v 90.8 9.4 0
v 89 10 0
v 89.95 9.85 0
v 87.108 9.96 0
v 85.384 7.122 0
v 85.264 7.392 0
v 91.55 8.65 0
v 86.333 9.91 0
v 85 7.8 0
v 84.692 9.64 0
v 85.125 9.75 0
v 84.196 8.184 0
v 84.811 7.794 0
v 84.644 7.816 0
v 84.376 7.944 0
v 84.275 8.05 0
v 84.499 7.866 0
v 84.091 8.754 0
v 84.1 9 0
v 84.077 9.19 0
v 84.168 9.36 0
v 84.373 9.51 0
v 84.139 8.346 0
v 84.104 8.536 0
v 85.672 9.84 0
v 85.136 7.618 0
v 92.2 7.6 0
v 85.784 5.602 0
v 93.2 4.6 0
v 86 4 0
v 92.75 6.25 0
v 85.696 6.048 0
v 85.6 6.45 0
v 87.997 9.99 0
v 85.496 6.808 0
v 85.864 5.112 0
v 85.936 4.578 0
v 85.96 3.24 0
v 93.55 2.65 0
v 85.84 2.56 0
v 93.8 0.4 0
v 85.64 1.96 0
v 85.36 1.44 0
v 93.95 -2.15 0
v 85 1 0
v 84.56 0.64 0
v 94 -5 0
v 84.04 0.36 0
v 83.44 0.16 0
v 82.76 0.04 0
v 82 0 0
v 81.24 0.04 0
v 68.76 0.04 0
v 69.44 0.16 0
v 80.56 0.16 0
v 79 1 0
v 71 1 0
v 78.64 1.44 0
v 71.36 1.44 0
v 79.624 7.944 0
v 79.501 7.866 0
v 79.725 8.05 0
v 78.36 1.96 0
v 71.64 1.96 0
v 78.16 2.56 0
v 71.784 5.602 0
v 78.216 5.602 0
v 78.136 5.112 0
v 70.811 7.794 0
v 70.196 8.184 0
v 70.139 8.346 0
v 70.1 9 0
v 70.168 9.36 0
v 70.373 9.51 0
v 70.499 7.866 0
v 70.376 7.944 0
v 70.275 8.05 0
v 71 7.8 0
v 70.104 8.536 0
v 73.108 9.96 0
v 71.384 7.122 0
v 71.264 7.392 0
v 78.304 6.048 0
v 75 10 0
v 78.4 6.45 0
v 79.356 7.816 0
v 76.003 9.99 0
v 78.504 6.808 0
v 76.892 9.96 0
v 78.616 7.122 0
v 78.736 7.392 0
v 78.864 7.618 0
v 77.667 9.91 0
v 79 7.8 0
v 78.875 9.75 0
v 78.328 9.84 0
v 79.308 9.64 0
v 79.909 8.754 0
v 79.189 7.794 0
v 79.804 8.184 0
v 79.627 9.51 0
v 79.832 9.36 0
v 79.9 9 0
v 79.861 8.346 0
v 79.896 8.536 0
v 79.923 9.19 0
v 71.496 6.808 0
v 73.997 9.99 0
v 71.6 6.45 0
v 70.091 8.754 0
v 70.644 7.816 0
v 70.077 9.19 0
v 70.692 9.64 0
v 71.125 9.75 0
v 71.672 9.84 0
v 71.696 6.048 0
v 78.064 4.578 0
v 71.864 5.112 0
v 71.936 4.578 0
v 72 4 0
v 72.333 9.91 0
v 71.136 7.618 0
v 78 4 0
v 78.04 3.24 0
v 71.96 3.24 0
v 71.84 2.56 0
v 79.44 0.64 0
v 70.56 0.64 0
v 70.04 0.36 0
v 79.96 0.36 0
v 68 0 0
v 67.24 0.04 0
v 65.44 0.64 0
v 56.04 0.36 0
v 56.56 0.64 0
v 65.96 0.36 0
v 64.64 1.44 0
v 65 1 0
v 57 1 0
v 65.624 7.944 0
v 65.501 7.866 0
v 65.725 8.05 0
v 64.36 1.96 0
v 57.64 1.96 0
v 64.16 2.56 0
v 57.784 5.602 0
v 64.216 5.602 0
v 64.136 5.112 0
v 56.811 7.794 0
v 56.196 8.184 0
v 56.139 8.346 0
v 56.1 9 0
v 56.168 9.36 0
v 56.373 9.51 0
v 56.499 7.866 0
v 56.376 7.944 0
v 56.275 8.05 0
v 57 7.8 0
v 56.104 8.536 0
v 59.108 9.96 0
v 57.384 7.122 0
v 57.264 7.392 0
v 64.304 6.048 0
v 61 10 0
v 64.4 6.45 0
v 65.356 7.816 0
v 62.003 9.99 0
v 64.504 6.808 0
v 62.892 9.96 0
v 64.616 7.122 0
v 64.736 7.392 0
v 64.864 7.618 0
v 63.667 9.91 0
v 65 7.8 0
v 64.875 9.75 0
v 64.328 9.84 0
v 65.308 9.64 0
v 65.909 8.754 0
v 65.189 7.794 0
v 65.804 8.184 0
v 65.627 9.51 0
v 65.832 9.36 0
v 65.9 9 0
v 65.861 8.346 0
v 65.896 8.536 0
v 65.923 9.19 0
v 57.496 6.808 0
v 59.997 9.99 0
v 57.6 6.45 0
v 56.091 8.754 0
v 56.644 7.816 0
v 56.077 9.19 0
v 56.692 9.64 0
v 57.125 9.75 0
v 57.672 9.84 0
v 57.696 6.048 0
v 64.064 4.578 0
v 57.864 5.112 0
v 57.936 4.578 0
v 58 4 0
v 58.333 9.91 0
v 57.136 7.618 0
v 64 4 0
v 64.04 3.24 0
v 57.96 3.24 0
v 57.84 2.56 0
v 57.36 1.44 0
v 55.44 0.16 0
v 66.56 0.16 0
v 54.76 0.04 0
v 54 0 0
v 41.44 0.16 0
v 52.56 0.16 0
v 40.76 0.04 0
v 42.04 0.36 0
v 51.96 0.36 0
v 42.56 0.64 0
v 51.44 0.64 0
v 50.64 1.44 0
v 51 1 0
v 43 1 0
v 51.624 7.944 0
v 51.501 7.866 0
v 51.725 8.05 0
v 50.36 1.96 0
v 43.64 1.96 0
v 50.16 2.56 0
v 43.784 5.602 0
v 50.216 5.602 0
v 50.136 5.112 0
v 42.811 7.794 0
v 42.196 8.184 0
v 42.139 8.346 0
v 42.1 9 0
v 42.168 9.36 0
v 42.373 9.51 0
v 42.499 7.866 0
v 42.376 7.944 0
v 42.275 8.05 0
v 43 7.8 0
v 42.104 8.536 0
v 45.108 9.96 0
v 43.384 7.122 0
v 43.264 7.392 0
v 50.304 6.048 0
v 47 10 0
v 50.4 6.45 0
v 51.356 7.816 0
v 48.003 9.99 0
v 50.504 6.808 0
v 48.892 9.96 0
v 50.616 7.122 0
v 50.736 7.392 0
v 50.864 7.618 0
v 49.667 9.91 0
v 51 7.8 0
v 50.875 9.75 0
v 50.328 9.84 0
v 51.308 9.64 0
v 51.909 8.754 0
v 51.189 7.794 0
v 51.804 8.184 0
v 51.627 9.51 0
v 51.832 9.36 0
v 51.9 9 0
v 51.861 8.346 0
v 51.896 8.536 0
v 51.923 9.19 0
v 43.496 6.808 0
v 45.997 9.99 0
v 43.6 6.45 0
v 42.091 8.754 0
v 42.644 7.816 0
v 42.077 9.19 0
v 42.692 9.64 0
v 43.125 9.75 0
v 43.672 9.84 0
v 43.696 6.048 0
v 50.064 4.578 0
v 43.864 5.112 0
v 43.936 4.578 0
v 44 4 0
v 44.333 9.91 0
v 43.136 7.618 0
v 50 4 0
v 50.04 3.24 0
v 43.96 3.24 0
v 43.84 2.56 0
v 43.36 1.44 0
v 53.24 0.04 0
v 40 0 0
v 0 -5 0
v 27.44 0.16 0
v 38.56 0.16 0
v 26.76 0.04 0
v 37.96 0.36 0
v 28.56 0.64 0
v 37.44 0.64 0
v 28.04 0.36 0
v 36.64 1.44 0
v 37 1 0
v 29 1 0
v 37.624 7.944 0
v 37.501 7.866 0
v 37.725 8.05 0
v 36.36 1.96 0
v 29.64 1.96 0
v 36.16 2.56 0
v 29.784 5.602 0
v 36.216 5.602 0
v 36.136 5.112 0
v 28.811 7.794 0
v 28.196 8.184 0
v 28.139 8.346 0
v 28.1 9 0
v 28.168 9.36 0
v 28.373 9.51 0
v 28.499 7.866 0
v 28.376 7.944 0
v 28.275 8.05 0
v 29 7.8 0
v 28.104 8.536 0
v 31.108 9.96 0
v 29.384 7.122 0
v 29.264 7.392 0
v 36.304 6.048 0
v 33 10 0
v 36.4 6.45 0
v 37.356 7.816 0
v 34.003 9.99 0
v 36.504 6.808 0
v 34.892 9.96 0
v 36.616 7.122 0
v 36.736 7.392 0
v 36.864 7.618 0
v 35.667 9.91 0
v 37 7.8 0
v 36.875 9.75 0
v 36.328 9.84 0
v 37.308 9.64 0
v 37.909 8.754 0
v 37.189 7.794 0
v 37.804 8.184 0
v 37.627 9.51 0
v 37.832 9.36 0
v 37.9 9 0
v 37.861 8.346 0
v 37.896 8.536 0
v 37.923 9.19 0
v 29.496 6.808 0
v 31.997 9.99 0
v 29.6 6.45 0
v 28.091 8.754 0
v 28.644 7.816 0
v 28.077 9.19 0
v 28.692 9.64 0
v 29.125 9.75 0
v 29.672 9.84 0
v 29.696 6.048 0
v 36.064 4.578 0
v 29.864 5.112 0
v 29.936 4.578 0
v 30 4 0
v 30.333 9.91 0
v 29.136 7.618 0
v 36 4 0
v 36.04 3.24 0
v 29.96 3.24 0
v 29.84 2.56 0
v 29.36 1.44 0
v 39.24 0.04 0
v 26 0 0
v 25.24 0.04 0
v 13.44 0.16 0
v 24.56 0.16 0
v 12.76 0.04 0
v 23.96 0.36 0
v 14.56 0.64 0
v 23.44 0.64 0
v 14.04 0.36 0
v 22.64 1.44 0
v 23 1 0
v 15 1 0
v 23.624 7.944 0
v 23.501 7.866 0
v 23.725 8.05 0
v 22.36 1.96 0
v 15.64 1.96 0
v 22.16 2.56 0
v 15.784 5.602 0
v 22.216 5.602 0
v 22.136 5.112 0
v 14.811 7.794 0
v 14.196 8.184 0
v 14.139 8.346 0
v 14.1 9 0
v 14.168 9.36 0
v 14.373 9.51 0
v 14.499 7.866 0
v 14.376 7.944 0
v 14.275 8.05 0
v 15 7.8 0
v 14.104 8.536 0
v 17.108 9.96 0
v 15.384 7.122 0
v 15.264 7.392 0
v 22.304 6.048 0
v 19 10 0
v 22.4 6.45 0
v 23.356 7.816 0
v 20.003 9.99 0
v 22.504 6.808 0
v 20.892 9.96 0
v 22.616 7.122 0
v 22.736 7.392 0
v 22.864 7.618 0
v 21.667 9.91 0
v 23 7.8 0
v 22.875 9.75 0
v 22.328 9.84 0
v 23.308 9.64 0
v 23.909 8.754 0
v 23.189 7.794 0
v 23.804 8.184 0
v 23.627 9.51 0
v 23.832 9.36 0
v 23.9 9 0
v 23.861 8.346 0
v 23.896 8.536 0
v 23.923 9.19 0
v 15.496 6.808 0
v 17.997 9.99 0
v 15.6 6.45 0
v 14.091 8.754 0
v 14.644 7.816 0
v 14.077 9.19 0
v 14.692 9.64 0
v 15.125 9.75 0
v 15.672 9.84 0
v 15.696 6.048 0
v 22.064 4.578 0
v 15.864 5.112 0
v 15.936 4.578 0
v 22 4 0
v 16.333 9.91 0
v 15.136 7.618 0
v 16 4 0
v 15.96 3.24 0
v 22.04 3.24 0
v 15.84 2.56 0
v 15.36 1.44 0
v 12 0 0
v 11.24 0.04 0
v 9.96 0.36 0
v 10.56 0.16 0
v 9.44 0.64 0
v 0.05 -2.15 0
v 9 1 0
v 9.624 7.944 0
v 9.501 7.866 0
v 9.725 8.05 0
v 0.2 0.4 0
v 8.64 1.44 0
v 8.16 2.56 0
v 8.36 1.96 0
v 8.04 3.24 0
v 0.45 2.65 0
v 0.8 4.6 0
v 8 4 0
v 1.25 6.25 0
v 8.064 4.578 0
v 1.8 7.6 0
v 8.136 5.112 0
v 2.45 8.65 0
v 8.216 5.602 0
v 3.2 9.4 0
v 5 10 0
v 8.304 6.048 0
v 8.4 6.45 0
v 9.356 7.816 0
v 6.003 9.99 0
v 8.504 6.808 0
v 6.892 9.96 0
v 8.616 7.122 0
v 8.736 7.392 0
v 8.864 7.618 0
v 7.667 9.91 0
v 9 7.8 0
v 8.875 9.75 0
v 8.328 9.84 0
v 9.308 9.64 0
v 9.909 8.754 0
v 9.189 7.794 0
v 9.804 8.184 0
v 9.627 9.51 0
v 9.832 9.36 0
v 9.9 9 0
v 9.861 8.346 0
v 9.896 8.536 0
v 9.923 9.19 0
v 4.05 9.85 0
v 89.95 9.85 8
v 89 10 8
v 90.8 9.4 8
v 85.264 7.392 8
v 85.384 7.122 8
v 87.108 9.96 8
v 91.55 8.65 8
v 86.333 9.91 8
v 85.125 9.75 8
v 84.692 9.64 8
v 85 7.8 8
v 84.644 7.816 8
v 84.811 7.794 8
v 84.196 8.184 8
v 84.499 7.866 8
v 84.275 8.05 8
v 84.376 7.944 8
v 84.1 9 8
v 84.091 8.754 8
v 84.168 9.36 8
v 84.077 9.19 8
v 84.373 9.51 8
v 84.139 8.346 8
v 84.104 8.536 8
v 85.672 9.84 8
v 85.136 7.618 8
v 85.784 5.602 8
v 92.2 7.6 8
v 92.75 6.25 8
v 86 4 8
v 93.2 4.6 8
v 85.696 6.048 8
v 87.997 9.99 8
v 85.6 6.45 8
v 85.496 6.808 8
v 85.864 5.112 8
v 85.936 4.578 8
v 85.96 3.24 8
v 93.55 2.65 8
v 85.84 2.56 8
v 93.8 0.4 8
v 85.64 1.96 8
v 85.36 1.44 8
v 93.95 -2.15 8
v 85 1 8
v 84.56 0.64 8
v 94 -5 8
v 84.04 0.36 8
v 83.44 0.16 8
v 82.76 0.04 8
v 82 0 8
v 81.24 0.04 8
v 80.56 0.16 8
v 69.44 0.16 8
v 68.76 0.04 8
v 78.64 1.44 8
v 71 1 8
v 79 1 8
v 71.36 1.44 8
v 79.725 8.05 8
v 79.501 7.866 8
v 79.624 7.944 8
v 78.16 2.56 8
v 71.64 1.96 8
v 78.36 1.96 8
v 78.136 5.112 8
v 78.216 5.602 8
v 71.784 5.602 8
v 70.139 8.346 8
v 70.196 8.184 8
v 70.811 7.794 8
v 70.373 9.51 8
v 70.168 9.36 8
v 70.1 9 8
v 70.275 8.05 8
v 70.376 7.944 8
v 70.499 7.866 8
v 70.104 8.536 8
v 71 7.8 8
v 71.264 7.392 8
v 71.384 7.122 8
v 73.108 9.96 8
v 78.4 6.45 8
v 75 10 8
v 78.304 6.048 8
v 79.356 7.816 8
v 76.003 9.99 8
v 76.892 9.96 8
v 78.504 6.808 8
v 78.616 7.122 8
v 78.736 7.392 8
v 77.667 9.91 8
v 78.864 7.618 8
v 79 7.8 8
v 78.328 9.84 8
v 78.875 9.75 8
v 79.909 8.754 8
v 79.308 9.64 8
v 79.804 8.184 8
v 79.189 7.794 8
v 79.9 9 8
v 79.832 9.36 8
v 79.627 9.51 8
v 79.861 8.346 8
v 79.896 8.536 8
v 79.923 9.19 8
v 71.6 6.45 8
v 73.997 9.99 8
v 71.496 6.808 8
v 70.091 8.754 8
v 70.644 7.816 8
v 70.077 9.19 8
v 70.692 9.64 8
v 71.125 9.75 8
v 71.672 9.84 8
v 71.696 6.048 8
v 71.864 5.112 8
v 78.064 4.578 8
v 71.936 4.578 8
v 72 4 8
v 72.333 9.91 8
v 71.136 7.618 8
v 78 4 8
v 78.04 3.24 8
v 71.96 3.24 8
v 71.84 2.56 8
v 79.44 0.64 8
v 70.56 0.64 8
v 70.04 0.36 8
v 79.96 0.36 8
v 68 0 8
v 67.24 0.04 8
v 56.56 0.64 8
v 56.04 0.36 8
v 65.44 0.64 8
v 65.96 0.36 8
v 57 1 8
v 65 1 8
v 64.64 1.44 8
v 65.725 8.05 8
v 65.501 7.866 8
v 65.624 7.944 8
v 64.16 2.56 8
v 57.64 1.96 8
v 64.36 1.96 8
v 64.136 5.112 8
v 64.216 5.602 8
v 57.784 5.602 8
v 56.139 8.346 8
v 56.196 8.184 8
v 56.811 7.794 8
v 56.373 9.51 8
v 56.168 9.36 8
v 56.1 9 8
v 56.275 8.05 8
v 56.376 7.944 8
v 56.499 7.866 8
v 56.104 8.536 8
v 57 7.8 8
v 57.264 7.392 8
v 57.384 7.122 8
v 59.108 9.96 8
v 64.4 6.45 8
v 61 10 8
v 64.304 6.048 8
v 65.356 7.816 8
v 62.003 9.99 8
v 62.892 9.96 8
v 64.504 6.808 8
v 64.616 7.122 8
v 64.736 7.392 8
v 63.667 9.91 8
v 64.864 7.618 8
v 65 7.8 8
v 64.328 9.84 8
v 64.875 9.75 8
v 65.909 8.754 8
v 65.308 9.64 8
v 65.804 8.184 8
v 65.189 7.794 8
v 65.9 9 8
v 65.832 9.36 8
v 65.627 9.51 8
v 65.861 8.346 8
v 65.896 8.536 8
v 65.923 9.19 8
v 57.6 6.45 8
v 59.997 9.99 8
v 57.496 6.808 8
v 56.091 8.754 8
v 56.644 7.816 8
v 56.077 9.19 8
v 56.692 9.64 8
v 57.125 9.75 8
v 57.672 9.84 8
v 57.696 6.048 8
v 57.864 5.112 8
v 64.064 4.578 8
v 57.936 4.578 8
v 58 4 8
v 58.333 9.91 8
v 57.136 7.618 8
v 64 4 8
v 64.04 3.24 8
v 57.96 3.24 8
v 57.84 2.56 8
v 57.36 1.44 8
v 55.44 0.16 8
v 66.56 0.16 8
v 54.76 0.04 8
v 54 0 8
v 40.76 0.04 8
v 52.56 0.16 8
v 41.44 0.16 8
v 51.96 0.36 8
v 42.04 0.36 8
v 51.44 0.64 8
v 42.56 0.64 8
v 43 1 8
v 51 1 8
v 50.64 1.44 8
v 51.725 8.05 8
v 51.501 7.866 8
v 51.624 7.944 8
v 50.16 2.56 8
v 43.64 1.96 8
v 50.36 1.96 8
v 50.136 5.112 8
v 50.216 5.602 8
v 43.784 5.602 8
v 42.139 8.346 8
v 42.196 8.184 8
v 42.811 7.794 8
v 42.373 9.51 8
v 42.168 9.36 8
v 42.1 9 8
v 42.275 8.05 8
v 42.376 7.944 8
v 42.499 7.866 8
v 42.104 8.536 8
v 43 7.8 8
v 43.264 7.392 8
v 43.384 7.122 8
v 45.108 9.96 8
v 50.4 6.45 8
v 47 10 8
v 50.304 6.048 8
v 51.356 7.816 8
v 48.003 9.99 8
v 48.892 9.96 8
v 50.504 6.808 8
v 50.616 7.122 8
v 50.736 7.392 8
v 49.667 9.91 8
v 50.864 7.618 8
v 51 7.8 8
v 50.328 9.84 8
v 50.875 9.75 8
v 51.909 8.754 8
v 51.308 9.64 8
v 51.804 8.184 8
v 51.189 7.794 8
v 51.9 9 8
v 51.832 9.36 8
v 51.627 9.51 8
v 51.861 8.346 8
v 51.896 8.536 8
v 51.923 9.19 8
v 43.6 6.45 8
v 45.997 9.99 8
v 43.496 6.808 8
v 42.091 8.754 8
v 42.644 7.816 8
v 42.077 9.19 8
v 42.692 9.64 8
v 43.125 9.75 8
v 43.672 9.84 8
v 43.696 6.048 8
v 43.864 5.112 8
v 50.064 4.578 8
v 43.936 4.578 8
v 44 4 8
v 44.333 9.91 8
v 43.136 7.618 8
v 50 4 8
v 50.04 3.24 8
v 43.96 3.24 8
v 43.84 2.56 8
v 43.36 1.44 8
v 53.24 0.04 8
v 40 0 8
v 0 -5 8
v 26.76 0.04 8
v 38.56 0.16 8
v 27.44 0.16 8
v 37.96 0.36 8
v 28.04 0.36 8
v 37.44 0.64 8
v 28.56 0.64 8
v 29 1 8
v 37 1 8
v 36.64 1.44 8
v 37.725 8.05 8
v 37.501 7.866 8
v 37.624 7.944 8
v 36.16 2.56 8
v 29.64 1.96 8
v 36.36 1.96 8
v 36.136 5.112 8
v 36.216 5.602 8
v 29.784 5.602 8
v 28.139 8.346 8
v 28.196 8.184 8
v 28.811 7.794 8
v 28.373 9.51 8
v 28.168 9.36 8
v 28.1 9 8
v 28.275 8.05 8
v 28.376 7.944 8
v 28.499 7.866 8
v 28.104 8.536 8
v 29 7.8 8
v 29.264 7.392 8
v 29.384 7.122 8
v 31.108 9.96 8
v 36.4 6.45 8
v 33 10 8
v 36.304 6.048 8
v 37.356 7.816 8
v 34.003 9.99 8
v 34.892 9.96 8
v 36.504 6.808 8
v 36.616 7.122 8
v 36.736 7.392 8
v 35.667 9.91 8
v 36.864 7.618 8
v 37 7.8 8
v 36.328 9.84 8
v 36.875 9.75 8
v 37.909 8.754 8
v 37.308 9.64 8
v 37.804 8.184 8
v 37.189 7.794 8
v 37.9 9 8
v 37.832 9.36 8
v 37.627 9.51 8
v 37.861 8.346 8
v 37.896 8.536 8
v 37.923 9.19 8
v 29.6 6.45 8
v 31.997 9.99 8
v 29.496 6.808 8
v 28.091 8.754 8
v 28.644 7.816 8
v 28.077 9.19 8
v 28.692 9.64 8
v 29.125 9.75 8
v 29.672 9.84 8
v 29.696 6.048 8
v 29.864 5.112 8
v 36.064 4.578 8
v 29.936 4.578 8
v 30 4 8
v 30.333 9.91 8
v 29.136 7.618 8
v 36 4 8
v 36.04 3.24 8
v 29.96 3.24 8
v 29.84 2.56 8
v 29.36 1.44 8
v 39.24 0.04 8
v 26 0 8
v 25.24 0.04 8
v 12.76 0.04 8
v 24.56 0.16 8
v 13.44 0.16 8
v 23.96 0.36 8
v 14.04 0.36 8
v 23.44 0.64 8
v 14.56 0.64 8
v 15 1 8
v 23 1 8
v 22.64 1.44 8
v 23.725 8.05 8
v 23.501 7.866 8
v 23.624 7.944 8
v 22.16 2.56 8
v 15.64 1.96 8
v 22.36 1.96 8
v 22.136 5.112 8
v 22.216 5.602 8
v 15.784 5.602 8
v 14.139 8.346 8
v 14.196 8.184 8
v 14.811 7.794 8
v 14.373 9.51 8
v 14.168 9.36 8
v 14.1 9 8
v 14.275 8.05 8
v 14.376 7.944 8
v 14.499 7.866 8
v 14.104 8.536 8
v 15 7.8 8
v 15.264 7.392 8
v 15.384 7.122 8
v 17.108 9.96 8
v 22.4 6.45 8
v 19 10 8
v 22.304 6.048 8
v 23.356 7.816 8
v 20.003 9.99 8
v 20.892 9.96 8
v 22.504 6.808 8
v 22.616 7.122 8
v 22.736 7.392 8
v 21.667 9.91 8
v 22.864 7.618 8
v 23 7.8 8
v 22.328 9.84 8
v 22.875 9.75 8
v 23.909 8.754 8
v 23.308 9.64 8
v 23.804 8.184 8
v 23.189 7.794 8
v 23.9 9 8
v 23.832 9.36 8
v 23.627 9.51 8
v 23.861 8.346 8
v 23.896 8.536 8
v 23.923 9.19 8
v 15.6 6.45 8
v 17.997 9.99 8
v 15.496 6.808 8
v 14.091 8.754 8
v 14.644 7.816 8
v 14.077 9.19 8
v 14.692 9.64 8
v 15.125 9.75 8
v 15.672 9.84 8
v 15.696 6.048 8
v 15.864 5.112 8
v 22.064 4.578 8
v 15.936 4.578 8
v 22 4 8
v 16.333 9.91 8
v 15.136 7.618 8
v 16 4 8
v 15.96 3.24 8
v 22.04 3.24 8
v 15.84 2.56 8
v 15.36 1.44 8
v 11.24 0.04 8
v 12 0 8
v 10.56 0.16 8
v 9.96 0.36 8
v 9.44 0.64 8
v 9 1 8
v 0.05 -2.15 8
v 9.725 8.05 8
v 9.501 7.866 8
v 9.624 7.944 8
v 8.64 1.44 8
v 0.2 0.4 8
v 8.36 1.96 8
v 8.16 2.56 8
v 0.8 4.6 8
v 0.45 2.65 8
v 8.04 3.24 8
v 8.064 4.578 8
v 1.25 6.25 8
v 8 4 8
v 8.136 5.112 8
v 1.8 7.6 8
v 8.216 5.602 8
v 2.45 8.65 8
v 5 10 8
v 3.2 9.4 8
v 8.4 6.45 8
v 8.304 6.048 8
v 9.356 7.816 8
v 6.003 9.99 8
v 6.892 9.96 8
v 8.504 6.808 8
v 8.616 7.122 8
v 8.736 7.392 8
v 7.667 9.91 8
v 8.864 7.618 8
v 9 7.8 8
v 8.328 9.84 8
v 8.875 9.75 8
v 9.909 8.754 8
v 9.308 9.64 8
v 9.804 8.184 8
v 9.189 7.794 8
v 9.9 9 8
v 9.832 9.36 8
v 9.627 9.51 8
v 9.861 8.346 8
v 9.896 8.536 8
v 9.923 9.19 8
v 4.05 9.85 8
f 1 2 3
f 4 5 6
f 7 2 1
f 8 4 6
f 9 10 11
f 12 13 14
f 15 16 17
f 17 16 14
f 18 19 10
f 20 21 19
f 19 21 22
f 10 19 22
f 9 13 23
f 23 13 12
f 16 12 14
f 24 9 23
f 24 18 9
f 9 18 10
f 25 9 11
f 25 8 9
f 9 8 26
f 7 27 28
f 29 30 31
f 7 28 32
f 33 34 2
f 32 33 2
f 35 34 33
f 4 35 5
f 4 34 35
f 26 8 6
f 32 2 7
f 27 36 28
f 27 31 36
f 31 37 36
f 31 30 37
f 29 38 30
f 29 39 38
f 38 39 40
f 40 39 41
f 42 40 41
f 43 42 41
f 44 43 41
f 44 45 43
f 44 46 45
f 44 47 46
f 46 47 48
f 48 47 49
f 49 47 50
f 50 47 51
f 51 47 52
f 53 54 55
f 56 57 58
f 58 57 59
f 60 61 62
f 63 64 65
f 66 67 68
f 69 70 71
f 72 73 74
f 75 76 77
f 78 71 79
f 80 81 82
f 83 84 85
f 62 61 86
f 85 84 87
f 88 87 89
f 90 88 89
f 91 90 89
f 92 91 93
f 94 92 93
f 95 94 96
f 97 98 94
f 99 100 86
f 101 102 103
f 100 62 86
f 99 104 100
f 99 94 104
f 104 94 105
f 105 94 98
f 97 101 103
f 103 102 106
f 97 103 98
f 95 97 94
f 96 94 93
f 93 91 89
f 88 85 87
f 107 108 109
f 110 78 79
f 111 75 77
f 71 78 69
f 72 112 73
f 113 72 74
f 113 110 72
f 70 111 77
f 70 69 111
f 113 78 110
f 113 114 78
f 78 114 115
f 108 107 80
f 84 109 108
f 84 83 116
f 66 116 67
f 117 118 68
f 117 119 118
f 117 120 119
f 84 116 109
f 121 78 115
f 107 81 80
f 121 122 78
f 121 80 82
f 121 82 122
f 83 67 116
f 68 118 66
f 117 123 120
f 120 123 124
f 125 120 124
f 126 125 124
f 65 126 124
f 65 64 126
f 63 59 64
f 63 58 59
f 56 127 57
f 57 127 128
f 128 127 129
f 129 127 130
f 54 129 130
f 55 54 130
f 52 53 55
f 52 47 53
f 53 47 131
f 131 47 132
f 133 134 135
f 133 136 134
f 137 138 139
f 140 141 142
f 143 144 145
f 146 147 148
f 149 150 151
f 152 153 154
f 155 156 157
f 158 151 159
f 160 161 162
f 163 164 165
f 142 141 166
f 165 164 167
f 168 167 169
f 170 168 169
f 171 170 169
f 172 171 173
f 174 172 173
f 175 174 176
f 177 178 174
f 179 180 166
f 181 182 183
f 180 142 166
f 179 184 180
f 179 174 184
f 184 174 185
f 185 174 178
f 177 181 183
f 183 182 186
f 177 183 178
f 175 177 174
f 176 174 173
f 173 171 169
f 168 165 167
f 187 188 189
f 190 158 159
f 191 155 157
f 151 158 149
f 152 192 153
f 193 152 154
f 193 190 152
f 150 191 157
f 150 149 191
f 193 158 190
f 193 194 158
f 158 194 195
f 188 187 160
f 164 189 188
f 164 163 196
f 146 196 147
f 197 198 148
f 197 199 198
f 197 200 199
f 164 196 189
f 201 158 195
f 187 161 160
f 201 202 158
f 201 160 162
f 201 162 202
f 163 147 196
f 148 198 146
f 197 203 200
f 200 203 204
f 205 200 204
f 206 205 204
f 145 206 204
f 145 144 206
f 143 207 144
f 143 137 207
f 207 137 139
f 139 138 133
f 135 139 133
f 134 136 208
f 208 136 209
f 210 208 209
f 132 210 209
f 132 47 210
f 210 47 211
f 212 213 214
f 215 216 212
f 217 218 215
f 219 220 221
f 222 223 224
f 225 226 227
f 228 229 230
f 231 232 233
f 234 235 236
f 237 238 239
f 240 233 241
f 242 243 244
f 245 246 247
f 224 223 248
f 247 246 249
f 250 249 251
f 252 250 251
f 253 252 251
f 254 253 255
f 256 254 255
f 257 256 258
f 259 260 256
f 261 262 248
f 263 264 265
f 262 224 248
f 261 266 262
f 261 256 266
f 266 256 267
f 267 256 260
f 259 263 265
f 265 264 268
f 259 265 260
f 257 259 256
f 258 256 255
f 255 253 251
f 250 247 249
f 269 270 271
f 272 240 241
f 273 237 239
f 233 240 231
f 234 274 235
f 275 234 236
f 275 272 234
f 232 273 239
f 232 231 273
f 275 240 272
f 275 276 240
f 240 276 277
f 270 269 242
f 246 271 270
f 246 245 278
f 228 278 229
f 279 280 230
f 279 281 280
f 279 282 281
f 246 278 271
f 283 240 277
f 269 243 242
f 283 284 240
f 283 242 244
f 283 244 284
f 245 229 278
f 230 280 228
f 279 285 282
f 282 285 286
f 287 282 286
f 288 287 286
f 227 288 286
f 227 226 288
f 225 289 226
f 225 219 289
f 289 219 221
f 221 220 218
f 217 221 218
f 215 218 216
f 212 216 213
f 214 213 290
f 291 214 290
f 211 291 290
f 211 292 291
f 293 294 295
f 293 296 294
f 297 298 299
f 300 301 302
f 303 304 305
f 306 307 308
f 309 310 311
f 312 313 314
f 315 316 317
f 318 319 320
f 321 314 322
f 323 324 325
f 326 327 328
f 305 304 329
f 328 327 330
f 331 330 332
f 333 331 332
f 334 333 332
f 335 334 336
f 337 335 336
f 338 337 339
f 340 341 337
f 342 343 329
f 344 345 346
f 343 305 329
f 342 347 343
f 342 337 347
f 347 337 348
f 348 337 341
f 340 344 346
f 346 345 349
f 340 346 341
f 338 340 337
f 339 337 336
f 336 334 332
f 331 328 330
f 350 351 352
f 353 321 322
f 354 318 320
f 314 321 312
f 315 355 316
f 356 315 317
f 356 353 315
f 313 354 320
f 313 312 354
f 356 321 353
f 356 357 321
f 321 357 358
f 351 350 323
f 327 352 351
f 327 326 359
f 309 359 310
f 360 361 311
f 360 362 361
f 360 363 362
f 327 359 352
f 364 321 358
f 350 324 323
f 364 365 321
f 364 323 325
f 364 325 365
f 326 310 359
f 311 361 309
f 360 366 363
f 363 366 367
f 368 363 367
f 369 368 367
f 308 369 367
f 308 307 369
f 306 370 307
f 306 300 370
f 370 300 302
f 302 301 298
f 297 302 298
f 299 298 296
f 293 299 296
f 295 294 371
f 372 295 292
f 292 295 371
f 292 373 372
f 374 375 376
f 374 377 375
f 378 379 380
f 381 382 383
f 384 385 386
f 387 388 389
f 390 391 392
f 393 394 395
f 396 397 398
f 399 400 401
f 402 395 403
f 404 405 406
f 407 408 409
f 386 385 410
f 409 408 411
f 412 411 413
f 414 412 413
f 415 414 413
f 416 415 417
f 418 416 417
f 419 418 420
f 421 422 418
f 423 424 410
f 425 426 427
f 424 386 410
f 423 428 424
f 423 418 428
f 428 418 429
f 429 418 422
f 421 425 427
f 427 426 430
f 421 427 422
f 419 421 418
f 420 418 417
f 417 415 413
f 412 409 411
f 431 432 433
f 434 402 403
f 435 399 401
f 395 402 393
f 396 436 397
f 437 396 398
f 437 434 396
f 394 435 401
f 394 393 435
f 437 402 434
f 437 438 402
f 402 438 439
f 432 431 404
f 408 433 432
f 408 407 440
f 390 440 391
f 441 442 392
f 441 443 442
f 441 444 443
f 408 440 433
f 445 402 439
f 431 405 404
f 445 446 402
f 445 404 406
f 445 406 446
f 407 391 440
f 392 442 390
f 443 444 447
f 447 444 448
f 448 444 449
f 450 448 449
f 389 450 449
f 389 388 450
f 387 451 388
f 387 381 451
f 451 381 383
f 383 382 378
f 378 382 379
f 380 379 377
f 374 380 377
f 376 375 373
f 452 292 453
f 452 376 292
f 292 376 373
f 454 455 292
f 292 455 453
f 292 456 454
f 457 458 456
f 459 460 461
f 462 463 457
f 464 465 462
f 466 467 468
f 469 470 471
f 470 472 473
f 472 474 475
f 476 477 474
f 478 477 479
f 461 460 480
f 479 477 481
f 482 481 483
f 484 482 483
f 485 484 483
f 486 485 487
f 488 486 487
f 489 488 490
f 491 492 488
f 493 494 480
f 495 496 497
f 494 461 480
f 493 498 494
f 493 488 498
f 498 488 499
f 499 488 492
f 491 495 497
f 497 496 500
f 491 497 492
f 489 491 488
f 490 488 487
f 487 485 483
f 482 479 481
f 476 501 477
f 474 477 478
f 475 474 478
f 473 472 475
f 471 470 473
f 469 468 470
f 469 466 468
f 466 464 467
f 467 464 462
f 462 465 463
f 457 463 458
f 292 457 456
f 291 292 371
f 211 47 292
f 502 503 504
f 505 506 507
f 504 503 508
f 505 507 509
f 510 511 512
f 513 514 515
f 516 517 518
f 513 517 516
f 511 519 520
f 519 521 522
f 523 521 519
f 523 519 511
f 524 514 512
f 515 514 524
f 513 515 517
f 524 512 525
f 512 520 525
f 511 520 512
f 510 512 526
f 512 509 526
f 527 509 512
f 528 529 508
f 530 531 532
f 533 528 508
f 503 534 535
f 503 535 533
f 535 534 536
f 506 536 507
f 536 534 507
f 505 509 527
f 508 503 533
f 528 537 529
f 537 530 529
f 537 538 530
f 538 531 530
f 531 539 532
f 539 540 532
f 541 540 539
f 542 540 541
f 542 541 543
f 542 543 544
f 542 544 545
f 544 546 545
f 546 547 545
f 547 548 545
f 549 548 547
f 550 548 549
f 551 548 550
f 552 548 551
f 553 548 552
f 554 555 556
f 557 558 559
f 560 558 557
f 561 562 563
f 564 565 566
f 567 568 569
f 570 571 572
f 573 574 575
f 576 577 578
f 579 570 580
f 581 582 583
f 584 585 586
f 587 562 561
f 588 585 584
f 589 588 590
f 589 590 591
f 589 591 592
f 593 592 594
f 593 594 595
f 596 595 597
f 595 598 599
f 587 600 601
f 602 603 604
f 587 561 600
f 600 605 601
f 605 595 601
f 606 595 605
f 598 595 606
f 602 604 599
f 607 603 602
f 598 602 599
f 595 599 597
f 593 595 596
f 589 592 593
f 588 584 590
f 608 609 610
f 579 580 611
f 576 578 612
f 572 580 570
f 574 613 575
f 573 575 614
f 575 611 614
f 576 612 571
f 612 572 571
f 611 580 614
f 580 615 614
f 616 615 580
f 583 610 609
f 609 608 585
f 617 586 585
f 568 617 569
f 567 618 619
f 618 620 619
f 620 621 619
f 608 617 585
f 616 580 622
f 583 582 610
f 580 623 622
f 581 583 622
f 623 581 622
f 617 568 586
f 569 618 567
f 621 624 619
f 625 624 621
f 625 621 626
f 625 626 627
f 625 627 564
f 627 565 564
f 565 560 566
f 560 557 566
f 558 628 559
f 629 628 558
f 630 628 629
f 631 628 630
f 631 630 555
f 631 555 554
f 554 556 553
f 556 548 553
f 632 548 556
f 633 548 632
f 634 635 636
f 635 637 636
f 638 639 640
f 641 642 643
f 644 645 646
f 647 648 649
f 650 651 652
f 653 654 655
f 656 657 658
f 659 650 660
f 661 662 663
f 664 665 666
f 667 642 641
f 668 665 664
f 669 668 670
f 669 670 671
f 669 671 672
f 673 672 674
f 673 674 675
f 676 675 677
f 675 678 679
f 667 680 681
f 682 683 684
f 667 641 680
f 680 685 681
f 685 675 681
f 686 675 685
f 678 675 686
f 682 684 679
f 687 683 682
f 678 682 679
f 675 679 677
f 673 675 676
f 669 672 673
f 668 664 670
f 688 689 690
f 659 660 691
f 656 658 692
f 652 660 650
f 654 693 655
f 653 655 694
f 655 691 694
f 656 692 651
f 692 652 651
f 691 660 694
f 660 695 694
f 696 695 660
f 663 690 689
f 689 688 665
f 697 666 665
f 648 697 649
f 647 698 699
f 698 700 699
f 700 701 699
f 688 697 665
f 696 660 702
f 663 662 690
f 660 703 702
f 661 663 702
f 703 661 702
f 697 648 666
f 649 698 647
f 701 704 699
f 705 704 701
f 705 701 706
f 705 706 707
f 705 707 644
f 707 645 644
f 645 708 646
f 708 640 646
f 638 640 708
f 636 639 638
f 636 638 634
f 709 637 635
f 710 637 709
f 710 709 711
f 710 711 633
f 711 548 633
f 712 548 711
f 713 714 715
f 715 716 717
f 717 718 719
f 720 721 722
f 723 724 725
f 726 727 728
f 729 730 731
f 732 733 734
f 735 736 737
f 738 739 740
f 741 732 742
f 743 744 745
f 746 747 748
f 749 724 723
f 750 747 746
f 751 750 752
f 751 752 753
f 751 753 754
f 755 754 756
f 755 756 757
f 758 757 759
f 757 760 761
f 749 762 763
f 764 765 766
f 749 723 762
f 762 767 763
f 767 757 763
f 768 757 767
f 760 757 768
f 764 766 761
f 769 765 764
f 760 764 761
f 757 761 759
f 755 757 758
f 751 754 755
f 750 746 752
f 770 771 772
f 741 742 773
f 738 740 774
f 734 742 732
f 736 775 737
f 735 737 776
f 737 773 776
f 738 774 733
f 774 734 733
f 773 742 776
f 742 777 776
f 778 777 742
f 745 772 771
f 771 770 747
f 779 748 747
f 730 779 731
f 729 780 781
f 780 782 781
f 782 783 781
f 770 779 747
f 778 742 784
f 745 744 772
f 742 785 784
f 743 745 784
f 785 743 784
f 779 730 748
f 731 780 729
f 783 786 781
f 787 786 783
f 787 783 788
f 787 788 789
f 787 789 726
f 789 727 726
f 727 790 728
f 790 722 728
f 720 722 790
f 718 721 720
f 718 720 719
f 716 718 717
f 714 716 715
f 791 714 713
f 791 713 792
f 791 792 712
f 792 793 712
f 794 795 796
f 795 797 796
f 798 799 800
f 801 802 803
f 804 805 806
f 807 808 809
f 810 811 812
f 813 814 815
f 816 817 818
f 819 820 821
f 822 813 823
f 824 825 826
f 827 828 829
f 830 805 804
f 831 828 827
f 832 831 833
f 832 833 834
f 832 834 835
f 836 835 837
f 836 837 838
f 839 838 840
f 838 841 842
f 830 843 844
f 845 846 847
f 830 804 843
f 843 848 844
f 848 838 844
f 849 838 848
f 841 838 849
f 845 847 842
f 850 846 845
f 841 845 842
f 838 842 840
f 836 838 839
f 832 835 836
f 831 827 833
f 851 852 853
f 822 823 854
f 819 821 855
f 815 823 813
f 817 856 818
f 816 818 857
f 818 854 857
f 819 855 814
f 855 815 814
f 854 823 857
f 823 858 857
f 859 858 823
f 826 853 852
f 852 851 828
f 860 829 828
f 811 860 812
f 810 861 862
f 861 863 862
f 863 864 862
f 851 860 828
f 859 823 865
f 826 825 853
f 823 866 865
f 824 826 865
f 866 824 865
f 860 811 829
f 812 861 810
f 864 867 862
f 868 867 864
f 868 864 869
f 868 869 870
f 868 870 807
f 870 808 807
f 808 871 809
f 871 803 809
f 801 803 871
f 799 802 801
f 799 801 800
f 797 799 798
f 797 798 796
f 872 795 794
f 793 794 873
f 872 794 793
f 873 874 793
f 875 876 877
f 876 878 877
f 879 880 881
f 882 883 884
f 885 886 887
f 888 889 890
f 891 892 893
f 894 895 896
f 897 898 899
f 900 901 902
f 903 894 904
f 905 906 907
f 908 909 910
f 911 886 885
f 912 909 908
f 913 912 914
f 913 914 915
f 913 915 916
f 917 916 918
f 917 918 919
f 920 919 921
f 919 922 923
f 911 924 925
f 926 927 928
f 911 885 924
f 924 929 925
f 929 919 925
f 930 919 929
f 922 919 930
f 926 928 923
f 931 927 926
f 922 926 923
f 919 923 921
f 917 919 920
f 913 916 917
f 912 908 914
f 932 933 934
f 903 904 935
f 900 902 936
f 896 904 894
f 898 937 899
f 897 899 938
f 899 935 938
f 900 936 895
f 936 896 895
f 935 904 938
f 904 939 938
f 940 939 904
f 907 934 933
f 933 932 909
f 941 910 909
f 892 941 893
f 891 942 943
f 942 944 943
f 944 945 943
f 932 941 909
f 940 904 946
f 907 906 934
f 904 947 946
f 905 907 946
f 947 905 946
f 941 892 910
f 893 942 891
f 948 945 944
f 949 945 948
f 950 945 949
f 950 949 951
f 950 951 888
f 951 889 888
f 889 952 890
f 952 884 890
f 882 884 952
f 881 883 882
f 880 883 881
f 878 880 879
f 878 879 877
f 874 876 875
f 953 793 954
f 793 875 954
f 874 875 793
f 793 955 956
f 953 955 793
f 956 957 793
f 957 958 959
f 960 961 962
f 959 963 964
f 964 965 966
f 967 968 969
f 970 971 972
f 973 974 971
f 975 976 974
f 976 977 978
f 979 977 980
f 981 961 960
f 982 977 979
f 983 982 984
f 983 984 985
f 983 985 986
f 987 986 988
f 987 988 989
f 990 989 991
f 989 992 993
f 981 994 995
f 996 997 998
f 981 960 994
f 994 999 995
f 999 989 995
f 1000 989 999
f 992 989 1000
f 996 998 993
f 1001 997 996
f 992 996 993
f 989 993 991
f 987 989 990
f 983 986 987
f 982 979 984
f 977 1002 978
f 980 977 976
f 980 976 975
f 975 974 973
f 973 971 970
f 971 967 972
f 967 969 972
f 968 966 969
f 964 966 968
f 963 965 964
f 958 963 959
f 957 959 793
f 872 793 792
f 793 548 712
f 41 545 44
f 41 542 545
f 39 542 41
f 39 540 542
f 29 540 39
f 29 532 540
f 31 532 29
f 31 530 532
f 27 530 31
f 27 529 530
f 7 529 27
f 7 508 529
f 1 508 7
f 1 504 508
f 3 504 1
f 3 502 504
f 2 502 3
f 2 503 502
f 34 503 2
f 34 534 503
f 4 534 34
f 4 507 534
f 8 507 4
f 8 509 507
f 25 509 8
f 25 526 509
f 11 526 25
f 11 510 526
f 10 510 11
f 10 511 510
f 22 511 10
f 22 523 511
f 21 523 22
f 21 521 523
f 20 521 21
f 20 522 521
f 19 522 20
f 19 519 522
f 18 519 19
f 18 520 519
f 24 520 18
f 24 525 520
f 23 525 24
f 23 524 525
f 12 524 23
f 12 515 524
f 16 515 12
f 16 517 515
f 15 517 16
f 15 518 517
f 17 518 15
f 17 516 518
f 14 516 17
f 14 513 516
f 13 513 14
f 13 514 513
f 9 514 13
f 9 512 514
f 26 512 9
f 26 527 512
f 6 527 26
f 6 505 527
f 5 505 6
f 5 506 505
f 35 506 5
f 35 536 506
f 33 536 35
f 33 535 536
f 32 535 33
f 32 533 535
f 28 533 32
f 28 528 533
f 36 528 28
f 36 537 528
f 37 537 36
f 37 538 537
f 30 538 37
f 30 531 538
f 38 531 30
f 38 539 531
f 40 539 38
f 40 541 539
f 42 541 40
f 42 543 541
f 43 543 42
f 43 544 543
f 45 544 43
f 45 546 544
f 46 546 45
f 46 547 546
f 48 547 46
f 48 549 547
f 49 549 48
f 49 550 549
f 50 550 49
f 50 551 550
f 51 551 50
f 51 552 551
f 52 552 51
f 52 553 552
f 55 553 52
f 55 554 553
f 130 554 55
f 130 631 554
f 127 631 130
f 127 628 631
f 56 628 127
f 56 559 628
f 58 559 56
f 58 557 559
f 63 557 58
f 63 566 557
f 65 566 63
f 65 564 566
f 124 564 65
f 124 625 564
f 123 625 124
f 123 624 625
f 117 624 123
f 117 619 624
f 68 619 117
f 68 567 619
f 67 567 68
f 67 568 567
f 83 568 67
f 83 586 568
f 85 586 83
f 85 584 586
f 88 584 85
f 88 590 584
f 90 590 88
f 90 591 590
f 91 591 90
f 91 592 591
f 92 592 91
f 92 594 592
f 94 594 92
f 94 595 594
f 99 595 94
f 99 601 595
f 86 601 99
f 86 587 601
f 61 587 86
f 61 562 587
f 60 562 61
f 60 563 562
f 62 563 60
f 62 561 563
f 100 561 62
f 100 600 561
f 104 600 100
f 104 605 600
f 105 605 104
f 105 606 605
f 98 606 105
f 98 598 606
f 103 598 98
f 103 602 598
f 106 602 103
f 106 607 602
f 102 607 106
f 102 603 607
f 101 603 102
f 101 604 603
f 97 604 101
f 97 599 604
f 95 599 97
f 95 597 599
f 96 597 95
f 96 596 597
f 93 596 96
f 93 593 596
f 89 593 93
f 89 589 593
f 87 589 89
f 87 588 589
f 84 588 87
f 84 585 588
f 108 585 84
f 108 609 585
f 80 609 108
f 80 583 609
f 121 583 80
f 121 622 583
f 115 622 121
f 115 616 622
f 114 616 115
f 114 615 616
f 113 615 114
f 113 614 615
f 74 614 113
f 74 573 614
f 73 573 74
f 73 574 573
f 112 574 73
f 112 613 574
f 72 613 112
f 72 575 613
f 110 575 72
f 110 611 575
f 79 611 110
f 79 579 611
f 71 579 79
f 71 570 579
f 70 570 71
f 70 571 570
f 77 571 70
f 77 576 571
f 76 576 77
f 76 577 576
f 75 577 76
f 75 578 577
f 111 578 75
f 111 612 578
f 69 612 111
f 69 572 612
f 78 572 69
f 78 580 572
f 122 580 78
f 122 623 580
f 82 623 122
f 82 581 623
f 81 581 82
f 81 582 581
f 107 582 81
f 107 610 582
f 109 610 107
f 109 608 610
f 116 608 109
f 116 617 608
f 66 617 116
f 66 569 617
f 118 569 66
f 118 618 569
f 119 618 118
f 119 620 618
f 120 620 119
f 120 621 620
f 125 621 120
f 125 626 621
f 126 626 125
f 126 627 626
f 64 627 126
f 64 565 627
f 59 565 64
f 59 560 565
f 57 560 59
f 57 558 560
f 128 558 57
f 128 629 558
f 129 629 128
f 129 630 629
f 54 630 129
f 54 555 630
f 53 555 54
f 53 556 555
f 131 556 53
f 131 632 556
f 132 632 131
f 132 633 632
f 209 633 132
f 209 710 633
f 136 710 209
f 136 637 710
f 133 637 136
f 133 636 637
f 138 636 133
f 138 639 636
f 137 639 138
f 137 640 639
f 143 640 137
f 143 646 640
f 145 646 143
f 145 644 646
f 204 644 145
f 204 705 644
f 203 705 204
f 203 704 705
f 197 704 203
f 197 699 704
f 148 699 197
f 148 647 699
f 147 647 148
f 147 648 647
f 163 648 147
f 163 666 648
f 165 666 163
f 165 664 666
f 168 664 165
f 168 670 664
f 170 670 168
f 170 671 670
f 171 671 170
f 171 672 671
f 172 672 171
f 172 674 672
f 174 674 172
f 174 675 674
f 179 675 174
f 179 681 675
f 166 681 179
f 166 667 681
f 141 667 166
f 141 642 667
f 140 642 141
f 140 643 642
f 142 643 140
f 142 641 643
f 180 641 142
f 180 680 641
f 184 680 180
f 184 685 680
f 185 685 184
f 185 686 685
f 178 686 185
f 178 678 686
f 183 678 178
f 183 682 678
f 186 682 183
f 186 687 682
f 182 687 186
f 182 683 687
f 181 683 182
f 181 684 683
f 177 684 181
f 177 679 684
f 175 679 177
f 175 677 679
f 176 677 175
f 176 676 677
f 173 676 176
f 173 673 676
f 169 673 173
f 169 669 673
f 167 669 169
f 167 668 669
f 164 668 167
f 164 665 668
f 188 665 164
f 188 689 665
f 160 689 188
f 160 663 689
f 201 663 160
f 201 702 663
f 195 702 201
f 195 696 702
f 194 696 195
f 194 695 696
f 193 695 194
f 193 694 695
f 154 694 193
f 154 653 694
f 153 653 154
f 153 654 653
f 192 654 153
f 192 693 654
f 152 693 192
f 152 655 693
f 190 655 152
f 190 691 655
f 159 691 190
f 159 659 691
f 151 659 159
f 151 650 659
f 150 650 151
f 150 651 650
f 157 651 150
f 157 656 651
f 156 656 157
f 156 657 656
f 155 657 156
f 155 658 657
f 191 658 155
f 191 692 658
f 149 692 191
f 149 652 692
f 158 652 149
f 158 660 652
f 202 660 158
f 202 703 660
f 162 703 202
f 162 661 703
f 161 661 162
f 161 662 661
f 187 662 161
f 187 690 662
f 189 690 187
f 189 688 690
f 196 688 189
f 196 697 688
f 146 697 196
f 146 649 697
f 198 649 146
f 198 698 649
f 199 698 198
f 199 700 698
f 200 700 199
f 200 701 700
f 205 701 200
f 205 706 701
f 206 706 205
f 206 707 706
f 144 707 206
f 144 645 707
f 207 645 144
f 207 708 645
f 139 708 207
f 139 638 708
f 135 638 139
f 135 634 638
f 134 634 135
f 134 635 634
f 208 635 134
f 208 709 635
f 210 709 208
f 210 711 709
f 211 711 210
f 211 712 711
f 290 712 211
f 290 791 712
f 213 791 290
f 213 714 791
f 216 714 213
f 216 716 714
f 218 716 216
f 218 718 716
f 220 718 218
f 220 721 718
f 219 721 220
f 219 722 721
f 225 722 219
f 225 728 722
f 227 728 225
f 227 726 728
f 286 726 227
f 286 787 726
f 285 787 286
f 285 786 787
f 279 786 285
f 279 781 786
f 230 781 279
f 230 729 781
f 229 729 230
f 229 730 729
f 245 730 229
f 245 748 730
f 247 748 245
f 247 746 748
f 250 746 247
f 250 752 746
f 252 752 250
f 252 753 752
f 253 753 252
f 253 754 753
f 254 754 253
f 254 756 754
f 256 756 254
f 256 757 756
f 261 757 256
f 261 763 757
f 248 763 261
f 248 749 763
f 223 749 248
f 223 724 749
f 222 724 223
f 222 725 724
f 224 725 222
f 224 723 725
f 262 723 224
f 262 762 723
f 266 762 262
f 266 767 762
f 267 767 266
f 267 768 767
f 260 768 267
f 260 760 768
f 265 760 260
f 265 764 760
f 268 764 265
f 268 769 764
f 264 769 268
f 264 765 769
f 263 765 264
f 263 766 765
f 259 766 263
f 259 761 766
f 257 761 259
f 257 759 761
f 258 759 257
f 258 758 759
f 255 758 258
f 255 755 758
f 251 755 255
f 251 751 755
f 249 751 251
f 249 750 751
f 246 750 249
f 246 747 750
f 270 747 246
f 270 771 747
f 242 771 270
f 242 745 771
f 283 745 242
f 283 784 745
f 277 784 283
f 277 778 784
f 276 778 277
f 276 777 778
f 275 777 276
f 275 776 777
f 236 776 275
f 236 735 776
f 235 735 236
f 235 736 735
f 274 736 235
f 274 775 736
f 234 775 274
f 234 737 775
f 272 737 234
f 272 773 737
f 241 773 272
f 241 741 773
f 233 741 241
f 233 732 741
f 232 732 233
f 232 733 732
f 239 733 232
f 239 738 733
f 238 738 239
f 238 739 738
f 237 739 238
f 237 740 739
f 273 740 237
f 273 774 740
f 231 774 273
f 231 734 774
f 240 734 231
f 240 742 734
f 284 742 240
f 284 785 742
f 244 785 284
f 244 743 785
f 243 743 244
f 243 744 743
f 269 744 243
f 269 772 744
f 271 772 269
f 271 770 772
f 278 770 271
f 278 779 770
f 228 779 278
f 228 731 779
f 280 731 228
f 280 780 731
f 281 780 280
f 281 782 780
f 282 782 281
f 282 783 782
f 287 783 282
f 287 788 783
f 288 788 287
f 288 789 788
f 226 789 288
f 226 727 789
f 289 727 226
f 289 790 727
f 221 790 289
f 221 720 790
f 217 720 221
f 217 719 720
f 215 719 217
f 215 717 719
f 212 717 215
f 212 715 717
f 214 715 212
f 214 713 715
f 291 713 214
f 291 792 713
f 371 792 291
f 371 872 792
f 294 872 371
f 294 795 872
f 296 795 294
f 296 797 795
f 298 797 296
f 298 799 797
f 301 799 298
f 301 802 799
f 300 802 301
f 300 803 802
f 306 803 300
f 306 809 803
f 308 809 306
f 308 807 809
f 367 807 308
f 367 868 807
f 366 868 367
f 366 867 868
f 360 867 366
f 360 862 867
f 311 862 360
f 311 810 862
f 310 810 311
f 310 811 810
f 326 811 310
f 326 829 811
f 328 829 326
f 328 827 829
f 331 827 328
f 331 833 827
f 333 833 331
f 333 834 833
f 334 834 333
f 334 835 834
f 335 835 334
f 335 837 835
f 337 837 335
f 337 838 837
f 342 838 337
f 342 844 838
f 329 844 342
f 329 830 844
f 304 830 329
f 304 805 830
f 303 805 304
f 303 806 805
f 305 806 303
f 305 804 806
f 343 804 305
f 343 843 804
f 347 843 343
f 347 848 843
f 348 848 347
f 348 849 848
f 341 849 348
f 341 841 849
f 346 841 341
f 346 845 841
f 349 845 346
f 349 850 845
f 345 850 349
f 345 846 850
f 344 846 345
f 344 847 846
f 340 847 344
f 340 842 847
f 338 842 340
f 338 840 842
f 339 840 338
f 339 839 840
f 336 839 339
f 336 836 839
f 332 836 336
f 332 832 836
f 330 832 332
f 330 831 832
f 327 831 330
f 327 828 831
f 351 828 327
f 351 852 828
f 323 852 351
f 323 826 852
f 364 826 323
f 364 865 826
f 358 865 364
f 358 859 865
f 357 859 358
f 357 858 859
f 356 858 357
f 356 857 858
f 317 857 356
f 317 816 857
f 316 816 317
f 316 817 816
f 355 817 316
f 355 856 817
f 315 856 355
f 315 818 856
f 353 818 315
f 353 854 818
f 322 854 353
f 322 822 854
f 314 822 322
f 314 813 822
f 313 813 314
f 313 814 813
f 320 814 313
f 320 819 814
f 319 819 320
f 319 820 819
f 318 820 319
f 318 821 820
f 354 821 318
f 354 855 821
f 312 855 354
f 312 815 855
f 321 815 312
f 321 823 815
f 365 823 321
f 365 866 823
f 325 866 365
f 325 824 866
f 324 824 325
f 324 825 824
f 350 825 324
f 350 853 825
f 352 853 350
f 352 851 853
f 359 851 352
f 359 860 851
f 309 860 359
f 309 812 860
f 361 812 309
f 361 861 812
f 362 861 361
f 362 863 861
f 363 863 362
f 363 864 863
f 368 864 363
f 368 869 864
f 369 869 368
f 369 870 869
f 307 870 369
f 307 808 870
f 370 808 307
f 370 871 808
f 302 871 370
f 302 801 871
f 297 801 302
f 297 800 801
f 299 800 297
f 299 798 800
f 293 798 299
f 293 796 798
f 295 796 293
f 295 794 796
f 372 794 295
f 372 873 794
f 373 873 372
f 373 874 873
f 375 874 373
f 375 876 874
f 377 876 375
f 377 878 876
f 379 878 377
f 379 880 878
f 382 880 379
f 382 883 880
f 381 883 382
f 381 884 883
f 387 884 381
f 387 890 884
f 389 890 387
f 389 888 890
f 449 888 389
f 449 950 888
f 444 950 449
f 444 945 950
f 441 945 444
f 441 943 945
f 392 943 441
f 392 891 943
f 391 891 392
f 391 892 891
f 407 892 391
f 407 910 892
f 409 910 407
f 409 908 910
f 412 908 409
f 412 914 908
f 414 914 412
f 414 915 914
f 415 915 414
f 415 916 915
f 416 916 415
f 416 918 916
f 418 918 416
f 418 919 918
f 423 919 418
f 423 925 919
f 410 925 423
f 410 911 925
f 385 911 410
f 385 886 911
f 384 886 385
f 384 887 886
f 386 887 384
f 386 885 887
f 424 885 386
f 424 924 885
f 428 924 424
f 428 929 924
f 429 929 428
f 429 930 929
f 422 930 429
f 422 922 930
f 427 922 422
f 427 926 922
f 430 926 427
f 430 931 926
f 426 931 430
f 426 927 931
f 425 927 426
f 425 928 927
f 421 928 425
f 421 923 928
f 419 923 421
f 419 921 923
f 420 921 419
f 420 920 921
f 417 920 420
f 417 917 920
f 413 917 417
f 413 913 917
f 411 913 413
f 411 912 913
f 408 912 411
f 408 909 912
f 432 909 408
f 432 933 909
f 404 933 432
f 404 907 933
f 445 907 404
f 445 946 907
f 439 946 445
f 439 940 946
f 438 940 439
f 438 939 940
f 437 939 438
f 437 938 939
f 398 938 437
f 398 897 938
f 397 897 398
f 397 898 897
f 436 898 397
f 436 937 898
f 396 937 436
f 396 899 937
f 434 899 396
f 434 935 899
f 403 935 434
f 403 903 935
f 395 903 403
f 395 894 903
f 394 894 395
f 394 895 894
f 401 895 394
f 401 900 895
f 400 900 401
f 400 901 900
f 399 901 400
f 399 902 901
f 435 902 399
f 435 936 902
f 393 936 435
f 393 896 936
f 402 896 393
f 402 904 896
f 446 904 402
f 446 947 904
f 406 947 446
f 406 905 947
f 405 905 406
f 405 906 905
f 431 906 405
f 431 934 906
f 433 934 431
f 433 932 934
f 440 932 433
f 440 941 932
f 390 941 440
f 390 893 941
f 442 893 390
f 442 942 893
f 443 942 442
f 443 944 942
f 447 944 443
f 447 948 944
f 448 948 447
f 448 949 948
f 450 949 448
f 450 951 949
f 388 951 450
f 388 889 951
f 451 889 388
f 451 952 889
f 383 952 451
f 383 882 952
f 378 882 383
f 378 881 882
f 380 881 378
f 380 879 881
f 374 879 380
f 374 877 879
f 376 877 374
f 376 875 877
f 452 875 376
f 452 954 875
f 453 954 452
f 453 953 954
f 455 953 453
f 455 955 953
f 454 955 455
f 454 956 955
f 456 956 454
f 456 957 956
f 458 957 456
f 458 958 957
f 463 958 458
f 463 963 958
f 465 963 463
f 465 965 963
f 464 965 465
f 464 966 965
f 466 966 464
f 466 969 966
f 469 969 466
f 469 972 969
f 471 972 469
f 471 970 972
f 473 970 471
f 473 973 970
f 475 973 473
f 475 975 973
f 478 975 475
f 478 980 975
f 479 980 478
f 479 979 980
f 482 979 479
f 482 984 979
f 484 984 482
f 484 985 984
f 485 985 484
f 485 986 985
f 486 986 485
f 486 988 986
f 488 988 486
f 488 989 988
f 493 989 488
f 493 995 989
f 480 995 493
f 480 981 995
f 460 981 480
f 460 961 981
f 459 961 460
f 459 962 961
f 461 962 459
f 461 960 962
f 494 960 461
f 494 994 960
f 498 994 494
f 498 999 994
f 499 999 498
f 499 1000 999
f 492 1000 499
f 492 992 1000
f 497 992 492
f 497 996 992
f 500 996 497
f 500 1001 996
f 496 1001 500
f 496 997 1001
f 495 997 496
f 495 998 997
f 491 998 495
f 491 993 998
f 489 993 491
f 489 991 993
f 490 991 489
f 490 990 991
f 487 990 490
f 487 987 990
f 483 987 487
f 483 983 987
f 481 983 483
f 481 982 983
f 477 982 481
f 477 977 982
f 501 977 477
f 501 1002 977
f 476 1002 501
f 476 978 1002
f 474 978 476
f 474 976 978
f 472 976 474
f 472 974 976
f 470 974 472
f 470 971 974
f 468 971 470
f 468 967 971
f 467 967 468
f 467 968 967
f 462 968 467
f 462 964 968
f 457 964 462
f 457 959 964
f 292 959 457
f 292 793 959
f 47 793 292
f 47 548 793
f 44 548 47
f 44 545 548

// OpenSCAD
// file: vector.scad
function is_nan(x) = x != x ;

// reverse vector
function reverse(v) = [for (i =[len(v)-1:-1:0]) v[i]];
// repeat vector n-times
function repeat(v, n) = [for (i=[0:n*len(v)-1])  v[ i%len(v) ] ];
// allow negative indexes for vector (counting from the back). -1 is last element in array
function v_index(v, n) = is_undef(n) ? len(v) : n < 0 ? len(v)+n : n ;
// cut slice of vertor. `start` included , `end` excluded.
function slice(v, start, end=undef) = [for (i=[start:v_index(v,end)-1]) v[i] ];

function v_add(v, n) = [for (i=[0:len(v)-1]) v[i]+n ];

assert(reverse([1,2,3]) == [3,2,1]);
assert(repeat([1,2],3) ==  [1, 2, 1, 2, 1, 2]);
assert(v_index([1,2,3],-1)==2);
assert(v_index([1,2,3],0) == 0);
assert(v_index([1,2,3],undef)==3);
assert(slice([1,2,3],1,-1)==[2]);
assert(slice([1,2,3],1)==[2,3]);
assert(v_add([1,2,3],1)==[2,3,4]);
// file: 2d.scad
use <vector.scad>

function max_x(a, i = 0) = (len(a) == 0) ? 0 : (i < len(a) - 1) ? max(a[i][0], max_x(a, i+1)) : a[i][0];
function shift_x(a, dx, scaler=1) = [for ( p=a) [scaler*p[0]+dx,p[1]] ];
function inverse_x(a) = shift_x(reverse(a),max_x(a),-1);

function concat_with_undefs(prev,next) = 
    len(prev) == 0 ? next : 
        let (prev_last_p = prev[v_index(prev,-1)]) 
        is_undef(prev_last_p[1])  
            ? concat(slice(prev,0,-1),[[prev_last_p[0],next[0][1]]],next) 
            : is_undef(next[0][1]) 
                ? concat(prev, [[next[0][0],prev_last_p[1]]], slice(next,1)) 
                : concat(prev, next) ;

function join_poly(polys, r = [], i=0) = (i < len(polys)) ? 
    join_poly( polys, concat_with_undefs(r,shift_x(polys[i],max_x(r))) ,i+1) : r;

function line_segment(p1,p2) = [p1,[p2[0]-p1[0], p2[1] - p1[1]]];

function ls_angle(ls) = atan(ls[1][1]/ls[1][0]);

function interpolate_point(ls,fraction) =  [
    ls[0][0] + fraction*ls[1][0],
    ls[0][1] + fraction*ls[1][1]
];

function bezier_curve(p1 , p2,  p3) =
    [line_segment(p1,p2), line_segment(p2, p3)];

function curve_point(bc, fraction) =
    interpolate_point(
        line_segment(
            interpolate_point(bc[0],fraction), 
            interpolate_point(bc[1], fraction)), 
        fraction);

function bc_poly(bc, n_points=10) = [for ( f = [0:1/n_points:1]) curve_point(bc, f)] ;

function rake_poly(up_ramp, down_to_valley, n_of_valleys) = 
    join_poly(concat(
        [up_ramp],
        repeat(
            [
                down_to_valley, 
                inverse_x(down_to_valley) // up on other side of the valley
            ], 
            n_of_valleys),
        [inverse_x(up_ramp)] // down ramp
    ));

module flat_hanger(n, ramp, down_to_valley){
    polygon(points=rake_poly(ramp, down_to_valley, n));
}
// main file
use <2d.scad>

ramp = bc_poly(bezier_curve([0,-5],[0,10],[5,10]));
valley = concat(
    bc_poly(bezier_curve([0,10],[5.3,10],[4.9,9])), 
    bc_poly(bezier_curve([4.9,9],[5,7.7],[4,7.8])),
    bc_poly(bezier_curve([4,7.8],[3.3,7],[3,4])), 
    bc_poly(bezier_curve([3,4],[3,0],[7,0]))
); 

linear_extrude(height=8) flat_hanger(6, ramp, valley);
